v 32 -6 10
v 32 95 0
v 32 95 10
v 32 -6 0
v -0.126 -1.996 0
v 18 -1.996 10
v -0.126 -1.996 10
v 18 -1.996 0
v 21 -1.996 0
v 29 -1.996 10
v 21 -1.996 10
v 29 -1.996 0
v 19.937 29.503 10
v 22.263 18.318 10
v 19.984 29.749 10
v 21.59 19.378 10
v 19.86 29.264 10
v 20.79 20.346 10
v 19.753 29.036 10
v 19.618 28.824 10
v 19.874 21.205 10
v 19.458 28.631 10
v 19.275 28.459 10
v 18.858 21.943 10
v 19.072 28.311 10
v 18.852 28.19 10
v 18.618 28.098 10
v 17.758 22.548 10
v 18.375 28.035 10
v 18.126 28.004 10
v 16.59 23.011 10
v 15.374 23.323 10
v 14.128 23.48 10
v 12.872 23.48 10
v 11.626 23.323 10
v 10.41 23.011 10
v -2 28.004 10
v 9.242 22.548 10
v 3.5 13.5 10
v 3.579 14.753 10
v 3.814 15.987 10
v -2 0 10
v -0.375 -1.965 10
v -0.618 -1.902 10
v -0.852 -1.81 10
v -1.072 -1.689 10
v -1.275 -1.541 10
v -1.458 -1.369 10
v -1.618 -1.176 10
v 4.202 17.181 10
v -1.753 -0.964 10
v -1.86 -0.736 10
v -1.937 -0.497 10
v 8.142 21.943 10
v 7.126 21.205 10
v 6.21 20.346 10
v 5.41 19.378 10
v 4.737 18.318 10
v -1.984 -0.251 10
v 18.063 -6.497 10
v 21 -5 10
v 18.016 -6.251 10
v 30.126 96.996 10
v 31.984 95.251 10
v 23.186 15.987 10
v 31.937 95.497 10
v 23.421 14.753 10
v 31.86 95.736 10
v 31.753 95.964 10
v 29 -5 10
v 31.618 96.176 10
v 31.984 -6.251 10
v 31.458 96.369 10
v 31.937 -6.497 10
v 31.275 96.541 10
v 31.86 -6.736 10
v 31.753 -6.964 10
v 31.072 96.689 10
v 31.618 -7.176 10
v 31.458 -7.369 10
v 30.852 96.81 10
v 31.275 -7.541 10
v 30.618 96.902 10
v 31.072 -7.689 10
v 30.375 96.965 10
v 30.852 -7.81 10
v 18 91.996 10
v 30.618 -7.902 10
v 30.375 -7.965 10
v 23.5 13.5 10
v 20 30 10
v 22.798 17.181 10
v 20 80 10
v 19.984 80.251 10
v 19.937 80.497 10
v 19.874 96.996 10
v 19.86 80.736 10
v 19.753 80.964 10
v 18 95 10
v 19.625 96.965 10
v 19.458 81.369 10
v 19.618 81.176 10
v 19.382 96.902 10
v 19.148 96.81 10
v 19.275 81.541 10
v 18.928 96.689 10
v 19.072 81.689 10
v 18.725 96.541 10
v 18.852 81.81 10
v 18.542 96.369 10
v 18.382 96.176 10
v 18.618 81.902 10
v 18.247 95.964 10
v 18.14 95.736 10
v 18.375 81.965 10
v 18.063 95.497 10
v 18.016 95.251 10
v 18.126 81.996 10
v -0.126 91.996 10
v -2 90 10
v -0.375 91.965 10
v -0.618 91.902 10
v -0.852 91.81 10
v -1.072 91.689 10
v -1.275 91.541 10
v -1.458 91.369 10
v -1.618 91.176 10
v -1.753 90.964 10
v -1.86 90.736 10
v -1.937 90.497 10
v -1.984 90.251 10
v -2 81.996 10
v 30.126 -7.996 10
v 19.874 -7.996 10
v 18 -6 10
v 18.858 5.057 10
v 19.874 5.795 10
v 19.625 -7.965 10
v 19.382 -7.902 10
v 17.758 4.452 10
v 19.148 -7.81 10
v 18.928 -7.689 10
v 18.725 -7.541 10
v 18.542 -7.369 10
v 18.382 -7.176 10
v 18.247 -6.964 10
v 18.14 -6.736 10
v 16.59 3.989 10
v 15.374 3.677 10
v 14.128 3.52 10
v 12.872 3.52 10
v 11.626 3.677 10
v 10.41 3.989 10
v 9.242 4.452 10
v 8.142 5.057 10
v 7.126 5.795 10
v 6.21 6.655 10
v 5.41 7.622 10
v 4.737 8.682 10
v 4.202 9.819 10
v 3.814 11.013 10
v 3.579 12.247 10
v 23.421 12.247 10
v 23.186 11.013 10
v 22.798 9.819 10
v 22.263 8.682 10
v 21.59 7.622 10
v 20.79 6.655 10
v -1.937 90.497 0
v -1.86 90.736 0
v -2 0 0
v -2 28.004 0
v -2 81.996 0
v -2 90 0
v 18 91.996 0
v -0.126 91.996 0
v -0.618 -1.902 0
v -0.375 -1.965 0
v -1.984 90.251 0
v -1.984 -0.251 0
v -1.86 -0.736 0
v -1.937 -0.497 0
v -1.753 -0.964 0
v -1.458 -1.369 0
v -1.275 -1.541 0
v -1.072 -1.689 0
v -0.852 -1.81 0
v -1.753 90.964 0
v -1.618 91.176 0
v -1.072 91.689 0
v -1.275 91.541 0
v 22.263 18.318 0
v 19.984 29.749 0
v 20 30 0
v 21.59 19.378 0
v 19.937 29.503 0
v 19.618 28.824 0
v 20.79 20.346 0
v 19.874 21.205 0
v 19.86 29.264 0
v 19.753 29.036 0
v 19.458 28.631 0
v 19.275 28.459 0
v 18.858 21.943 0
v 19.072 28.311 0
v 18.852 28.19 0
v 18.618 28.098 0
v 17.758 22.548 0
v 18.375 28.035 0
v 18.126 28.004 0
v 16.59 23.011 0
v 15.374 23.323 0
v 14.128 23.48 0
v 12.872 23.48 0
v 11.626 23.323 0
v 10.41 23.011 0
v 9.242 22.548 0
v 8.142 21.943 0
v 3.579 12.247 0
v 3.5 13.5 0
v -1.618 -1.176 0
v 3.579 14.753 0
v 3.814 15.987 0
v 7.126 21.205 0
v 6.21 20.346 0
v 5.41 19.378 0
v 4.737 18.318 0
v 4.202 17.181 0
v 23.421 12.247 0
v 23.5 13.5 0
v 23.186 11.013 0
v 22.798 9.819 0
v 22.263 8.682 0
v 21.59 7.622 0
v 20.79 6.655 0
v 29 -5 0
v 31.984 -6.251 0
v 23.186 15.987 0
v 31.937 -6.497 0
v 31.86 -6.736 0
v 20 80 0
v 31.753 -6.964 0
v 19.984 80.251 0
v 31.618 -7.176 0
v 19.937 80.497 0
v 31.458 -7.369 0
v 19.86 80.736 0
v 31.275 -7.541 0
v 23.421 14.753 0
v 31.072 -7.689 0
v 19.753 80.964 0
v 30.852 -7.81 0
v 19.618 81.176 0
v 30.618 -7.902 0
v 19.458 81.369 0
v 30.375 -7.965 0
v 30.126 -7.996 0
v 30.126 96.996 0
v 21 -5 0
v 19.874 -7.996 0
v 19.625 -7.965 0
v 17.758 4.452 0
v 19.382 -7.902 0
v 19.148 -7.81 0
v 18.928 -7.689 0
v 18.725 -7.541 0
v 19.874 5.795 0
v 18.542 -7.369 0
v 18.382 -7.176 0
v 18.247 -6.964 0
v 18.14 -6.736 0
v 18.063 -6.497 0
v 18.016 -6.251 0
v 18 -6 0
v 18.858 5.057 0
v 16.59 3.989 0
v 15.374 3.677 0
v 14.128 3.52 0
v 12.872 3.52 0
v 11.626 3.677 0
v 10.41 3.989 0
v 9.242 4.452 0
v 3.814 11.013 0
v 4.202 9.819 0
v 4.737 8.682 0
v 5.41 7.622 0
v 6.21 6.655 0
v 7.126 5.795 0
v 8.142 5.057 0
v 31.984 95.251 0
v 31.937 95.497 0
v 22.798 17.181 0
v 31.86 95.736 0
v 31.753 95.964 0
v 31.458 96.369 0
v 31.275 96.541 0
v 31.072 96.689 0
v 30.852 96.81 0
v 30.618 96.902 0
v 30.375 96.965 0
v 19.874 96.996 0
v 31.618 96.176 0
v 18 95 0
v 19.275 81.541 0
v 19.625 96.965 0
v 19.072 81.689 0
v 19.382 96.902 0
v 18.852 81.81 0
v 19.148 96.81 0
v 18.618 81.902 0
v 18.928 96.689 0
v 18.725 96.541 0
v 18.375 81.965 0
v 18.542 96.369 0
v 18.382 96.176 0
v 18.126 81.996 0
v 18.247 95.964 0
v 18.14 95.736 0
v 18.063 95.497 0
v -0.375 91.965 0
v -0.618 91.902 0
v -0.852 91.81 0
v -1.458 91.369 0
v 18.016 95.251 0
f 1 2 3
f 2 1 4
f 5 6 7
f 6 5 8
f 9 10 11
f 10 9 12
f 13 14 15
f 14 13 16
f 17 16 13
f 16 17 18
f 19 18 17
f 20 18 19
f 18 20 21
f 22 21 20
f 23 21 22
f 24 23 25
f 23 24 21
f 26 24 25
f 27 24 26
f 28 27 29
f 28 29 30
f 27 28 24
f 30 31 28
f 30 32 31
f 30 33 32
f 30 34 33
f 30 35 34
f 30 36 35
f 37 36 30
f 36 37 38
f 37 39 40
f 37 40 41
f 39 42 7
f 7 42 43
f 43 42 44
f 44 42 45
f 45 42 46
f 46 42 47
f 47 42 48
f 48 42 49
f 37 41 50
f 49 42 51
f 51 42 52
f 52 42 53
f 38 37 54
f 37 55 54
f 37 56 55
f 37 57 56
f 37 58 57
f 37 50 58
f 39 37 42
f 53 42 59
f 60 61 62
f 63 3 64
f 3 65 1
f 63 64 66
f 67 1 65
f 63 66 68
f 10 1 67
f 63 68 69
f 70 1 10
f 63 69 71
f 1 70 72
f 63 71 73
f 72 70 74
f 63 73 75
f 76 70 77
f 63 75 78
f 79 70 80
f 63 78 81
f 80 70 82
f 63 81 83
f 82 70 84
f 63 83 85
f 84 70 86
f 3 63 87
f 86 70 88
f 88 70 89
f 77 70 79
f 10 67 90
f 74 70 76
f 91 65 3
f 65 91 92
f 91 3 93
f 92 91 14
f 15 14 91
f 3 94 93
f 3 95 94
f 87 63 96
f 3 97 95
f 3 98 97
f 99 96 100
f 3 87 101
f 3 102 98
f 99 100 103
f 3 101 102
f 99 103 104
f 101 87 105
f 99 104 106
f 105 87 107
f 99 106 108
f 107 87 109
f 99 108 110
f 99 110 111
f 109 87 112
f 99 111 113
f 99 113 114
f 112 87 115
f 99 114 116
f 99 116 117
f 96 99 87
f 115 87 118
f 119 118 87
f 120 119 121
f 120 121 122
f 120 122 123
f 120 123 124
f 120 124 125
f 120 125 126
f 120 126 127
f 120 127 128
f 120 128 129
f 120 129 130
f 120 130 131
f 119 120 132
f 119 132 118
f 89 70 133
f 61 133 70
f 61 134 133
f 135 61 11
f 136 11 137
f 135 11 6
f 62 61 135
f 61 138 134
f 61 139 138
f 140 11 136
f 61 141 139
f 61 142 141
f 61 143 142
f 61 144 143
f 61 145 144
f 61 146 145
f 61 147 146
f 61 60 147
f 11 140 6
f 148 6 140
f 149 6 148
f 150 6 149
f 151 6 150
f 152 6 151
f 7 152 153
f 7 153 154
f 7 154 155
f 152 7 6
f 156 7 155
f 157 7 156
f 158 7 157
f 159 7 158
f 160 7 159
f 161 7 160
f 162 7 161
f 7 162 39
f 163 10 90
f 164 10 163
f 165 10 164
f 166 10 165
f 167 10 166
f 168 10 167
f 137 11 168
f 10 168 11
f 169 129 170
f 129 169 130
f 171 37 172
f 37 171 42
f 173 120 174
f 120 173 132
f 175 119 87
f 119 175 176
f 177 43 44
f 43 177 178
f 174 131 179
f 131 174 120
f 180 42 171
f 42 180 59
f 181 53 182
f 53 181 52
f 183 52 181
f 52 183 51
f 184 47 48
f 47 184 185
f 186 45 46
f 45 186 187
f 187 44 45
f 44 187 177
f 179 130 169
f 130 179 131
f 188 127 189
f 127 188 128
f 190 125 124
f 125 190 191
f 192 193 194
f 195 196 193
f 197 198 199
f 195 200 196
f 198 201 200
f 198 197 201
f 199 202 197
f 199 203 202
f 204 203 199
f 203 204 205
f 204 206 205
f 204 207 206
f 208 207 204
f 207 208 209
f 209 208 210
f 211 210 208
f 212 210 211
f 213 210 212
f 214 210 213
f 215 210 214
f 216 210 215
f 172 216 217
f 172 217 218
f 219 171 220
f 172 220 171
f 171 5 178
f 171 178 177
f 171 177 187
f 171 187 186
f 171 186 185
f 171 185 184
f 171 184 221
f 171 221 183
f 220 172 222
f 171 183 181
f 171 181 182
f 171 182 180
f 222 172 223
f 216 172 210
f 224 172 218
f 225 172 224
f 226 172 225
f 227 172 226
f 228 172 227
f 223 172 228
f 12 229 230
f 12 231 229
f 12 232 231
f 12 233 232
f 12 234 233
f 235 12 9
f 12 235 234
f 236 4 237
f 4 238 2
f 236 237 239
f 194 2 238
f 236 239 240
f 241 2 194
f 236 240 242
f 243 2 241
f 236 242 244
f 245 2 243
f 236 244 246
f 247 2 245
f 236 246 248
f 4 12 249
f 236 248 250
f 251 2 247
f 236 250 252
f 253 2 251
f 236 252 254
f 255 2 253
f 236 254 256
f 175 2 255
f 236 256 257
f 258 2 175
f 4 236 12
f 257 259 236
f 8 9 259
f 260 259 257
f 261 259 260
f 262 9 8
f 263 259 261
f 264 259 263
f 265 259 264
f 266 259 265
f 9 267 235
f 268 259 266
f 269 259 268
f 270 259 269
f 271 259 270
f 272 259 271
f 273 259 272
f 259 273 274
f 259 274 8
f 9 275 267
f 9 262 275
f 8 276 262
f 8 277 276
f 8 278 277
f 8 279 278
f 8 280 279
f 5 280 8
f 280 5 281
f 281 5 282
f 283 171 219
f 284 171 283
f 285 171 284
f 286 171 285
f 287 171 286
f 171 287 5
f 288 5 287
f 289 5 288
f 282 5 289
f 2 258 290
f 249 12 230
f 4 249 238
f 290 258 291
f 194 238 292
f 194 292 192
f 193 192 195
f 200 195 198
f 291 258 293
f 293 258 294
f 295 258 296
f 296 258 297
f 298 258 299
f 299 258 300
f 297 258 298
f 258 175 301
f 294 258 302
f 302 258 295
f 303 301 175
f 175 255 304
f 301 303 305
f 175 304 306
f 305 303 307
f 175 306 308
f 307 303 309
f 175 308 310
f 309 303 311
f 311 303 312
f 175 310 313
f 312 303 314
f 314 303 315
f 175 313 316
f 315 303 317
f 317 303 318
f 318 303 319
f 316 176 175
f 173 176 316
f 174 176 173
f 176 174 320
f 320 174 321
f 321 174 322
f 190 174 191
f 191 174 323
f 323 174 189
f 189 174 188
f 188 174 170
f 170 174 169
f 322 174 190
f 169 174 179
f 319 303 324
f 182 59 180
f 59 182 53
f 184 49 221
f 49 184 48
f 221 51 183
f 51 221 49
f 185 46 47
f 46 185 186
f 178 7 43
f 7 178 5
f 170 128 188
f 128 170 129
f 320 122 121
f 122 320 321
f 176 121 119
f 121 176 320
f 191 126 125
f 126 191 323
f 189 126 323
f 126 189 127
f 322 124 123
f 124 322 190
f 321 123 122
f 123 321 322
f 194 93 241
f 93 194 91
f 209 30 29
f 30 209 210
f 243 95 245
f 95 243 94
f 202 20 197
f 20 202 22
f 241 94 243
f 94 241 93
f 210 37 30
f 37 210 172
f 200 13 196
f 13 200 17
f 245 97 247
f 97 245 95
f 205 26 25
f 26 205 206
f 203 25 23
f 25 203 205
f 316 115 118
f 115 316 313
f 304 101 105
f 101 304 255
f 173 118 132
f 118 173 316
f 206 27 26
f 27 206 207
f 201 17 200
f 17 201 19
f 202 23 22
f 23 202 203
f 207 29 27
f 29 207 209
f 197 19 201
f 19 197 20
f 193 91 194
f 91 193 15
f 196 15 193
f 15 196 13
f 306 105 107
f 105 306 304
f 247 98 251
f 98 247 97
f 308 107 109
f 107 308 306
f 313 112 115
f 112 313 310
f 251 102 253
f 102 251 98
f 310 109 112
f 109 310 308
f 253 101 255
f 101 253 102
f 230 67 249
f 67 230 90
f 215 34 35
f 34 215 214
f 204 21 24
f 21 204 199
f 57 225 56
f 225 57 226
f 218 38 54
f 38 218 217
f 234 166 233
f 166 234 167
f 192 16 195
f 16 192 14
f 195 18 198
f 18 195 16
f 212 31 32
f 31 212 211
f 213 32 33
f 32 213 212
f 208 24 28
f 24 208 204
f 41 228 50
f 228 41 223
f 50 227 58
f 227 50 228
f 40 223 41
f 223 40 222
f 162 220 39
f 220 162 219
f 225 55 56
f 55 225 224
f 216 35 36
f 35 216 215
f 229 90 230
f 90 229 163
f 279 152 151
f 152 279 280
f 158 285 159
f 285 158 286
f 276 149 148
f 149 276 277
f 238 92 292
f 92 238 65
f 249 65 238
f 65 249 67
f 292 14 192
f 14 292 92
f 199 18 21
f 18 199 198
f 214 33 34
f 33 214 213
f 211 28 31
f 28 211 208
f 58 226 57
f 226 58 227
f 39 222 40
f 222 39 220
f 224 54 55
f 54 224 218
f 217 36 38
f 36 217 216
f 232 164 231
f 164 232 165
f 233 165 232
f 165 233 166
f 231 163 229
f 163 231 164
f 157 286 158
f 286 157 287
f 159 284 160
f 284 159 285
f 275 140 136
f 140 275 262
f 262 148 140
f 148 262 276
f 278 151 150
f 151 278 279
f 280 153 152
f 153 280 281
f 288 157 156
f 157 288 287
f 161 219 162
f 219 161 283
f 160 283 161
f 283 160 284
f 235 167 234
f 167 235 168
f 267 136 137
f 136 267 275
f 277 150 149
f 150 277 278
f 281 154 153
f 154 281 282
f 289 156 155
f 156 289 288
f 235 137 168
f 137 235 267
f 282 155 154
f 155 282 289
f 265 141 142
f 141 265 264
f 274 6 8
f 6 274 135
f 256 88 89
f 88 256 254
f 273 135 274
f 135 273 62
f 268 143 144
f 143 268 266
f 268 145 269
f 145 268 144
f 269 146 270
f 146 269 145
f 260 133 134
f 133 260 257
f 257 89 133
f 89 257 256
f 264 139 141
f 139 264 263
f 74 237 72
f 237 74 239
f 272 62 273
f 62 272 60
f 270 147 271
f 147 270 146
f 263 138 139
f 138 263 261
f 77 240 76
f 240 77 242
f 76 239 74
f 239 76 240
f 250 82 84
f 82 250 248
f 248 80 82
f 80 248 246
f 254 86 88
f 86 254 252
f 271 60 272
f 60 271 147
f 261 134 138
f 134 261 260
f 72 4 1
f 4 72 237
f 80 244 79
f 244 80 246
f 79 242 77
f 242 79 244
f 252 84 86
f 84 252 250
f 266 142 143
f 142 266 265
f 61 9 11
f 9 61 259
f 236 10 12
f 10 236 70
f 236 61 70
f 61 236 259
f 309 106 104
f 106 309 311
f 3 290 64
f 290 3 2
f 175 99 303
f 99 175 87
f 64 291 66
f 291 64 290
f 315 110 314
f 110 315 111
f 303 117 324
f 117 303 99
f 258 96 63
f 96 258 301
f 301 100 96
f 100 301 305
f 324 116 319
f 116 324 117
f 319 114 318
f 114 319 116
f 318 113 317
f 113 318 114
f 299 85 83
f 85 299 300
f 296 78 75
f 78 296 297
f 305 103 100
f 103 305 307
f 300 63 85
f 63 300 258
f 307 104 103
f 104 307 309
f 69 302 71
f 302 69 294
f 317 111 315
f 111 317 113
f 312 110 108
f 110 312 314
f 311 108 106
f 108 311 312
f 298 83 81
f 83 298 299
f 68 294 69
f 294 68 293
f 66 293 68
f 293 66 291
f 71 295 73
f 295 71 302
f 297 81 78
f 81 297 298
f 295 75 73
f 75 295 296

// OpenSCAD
$fn=50;
union () {
    difference() {
        minkowski() {
            cube( size = [30,90,9] );
            cylinder(r=2);
        }
        translate([-2, 30, -5])
            minkowski() {
                cube( size = [20,50,20] );
                cylinder(r=2);
            }
        translate([13.5, 13.5, -5])
            cylinder( h=20, r=10 );
    }
    translate([20, 85, 0])
            minkowski() {
                cube( size = [10,10,9] );
                cylinder(r=2);
            }
    difference () {
    translate([20, -6, 0])
            minkowski() {
                cube( size = [10,7,9] );
                cylinder(r=2);
            }
            translate ([21,-5,-3])
            cube(size = [8,6,20] );
        }
        
}
